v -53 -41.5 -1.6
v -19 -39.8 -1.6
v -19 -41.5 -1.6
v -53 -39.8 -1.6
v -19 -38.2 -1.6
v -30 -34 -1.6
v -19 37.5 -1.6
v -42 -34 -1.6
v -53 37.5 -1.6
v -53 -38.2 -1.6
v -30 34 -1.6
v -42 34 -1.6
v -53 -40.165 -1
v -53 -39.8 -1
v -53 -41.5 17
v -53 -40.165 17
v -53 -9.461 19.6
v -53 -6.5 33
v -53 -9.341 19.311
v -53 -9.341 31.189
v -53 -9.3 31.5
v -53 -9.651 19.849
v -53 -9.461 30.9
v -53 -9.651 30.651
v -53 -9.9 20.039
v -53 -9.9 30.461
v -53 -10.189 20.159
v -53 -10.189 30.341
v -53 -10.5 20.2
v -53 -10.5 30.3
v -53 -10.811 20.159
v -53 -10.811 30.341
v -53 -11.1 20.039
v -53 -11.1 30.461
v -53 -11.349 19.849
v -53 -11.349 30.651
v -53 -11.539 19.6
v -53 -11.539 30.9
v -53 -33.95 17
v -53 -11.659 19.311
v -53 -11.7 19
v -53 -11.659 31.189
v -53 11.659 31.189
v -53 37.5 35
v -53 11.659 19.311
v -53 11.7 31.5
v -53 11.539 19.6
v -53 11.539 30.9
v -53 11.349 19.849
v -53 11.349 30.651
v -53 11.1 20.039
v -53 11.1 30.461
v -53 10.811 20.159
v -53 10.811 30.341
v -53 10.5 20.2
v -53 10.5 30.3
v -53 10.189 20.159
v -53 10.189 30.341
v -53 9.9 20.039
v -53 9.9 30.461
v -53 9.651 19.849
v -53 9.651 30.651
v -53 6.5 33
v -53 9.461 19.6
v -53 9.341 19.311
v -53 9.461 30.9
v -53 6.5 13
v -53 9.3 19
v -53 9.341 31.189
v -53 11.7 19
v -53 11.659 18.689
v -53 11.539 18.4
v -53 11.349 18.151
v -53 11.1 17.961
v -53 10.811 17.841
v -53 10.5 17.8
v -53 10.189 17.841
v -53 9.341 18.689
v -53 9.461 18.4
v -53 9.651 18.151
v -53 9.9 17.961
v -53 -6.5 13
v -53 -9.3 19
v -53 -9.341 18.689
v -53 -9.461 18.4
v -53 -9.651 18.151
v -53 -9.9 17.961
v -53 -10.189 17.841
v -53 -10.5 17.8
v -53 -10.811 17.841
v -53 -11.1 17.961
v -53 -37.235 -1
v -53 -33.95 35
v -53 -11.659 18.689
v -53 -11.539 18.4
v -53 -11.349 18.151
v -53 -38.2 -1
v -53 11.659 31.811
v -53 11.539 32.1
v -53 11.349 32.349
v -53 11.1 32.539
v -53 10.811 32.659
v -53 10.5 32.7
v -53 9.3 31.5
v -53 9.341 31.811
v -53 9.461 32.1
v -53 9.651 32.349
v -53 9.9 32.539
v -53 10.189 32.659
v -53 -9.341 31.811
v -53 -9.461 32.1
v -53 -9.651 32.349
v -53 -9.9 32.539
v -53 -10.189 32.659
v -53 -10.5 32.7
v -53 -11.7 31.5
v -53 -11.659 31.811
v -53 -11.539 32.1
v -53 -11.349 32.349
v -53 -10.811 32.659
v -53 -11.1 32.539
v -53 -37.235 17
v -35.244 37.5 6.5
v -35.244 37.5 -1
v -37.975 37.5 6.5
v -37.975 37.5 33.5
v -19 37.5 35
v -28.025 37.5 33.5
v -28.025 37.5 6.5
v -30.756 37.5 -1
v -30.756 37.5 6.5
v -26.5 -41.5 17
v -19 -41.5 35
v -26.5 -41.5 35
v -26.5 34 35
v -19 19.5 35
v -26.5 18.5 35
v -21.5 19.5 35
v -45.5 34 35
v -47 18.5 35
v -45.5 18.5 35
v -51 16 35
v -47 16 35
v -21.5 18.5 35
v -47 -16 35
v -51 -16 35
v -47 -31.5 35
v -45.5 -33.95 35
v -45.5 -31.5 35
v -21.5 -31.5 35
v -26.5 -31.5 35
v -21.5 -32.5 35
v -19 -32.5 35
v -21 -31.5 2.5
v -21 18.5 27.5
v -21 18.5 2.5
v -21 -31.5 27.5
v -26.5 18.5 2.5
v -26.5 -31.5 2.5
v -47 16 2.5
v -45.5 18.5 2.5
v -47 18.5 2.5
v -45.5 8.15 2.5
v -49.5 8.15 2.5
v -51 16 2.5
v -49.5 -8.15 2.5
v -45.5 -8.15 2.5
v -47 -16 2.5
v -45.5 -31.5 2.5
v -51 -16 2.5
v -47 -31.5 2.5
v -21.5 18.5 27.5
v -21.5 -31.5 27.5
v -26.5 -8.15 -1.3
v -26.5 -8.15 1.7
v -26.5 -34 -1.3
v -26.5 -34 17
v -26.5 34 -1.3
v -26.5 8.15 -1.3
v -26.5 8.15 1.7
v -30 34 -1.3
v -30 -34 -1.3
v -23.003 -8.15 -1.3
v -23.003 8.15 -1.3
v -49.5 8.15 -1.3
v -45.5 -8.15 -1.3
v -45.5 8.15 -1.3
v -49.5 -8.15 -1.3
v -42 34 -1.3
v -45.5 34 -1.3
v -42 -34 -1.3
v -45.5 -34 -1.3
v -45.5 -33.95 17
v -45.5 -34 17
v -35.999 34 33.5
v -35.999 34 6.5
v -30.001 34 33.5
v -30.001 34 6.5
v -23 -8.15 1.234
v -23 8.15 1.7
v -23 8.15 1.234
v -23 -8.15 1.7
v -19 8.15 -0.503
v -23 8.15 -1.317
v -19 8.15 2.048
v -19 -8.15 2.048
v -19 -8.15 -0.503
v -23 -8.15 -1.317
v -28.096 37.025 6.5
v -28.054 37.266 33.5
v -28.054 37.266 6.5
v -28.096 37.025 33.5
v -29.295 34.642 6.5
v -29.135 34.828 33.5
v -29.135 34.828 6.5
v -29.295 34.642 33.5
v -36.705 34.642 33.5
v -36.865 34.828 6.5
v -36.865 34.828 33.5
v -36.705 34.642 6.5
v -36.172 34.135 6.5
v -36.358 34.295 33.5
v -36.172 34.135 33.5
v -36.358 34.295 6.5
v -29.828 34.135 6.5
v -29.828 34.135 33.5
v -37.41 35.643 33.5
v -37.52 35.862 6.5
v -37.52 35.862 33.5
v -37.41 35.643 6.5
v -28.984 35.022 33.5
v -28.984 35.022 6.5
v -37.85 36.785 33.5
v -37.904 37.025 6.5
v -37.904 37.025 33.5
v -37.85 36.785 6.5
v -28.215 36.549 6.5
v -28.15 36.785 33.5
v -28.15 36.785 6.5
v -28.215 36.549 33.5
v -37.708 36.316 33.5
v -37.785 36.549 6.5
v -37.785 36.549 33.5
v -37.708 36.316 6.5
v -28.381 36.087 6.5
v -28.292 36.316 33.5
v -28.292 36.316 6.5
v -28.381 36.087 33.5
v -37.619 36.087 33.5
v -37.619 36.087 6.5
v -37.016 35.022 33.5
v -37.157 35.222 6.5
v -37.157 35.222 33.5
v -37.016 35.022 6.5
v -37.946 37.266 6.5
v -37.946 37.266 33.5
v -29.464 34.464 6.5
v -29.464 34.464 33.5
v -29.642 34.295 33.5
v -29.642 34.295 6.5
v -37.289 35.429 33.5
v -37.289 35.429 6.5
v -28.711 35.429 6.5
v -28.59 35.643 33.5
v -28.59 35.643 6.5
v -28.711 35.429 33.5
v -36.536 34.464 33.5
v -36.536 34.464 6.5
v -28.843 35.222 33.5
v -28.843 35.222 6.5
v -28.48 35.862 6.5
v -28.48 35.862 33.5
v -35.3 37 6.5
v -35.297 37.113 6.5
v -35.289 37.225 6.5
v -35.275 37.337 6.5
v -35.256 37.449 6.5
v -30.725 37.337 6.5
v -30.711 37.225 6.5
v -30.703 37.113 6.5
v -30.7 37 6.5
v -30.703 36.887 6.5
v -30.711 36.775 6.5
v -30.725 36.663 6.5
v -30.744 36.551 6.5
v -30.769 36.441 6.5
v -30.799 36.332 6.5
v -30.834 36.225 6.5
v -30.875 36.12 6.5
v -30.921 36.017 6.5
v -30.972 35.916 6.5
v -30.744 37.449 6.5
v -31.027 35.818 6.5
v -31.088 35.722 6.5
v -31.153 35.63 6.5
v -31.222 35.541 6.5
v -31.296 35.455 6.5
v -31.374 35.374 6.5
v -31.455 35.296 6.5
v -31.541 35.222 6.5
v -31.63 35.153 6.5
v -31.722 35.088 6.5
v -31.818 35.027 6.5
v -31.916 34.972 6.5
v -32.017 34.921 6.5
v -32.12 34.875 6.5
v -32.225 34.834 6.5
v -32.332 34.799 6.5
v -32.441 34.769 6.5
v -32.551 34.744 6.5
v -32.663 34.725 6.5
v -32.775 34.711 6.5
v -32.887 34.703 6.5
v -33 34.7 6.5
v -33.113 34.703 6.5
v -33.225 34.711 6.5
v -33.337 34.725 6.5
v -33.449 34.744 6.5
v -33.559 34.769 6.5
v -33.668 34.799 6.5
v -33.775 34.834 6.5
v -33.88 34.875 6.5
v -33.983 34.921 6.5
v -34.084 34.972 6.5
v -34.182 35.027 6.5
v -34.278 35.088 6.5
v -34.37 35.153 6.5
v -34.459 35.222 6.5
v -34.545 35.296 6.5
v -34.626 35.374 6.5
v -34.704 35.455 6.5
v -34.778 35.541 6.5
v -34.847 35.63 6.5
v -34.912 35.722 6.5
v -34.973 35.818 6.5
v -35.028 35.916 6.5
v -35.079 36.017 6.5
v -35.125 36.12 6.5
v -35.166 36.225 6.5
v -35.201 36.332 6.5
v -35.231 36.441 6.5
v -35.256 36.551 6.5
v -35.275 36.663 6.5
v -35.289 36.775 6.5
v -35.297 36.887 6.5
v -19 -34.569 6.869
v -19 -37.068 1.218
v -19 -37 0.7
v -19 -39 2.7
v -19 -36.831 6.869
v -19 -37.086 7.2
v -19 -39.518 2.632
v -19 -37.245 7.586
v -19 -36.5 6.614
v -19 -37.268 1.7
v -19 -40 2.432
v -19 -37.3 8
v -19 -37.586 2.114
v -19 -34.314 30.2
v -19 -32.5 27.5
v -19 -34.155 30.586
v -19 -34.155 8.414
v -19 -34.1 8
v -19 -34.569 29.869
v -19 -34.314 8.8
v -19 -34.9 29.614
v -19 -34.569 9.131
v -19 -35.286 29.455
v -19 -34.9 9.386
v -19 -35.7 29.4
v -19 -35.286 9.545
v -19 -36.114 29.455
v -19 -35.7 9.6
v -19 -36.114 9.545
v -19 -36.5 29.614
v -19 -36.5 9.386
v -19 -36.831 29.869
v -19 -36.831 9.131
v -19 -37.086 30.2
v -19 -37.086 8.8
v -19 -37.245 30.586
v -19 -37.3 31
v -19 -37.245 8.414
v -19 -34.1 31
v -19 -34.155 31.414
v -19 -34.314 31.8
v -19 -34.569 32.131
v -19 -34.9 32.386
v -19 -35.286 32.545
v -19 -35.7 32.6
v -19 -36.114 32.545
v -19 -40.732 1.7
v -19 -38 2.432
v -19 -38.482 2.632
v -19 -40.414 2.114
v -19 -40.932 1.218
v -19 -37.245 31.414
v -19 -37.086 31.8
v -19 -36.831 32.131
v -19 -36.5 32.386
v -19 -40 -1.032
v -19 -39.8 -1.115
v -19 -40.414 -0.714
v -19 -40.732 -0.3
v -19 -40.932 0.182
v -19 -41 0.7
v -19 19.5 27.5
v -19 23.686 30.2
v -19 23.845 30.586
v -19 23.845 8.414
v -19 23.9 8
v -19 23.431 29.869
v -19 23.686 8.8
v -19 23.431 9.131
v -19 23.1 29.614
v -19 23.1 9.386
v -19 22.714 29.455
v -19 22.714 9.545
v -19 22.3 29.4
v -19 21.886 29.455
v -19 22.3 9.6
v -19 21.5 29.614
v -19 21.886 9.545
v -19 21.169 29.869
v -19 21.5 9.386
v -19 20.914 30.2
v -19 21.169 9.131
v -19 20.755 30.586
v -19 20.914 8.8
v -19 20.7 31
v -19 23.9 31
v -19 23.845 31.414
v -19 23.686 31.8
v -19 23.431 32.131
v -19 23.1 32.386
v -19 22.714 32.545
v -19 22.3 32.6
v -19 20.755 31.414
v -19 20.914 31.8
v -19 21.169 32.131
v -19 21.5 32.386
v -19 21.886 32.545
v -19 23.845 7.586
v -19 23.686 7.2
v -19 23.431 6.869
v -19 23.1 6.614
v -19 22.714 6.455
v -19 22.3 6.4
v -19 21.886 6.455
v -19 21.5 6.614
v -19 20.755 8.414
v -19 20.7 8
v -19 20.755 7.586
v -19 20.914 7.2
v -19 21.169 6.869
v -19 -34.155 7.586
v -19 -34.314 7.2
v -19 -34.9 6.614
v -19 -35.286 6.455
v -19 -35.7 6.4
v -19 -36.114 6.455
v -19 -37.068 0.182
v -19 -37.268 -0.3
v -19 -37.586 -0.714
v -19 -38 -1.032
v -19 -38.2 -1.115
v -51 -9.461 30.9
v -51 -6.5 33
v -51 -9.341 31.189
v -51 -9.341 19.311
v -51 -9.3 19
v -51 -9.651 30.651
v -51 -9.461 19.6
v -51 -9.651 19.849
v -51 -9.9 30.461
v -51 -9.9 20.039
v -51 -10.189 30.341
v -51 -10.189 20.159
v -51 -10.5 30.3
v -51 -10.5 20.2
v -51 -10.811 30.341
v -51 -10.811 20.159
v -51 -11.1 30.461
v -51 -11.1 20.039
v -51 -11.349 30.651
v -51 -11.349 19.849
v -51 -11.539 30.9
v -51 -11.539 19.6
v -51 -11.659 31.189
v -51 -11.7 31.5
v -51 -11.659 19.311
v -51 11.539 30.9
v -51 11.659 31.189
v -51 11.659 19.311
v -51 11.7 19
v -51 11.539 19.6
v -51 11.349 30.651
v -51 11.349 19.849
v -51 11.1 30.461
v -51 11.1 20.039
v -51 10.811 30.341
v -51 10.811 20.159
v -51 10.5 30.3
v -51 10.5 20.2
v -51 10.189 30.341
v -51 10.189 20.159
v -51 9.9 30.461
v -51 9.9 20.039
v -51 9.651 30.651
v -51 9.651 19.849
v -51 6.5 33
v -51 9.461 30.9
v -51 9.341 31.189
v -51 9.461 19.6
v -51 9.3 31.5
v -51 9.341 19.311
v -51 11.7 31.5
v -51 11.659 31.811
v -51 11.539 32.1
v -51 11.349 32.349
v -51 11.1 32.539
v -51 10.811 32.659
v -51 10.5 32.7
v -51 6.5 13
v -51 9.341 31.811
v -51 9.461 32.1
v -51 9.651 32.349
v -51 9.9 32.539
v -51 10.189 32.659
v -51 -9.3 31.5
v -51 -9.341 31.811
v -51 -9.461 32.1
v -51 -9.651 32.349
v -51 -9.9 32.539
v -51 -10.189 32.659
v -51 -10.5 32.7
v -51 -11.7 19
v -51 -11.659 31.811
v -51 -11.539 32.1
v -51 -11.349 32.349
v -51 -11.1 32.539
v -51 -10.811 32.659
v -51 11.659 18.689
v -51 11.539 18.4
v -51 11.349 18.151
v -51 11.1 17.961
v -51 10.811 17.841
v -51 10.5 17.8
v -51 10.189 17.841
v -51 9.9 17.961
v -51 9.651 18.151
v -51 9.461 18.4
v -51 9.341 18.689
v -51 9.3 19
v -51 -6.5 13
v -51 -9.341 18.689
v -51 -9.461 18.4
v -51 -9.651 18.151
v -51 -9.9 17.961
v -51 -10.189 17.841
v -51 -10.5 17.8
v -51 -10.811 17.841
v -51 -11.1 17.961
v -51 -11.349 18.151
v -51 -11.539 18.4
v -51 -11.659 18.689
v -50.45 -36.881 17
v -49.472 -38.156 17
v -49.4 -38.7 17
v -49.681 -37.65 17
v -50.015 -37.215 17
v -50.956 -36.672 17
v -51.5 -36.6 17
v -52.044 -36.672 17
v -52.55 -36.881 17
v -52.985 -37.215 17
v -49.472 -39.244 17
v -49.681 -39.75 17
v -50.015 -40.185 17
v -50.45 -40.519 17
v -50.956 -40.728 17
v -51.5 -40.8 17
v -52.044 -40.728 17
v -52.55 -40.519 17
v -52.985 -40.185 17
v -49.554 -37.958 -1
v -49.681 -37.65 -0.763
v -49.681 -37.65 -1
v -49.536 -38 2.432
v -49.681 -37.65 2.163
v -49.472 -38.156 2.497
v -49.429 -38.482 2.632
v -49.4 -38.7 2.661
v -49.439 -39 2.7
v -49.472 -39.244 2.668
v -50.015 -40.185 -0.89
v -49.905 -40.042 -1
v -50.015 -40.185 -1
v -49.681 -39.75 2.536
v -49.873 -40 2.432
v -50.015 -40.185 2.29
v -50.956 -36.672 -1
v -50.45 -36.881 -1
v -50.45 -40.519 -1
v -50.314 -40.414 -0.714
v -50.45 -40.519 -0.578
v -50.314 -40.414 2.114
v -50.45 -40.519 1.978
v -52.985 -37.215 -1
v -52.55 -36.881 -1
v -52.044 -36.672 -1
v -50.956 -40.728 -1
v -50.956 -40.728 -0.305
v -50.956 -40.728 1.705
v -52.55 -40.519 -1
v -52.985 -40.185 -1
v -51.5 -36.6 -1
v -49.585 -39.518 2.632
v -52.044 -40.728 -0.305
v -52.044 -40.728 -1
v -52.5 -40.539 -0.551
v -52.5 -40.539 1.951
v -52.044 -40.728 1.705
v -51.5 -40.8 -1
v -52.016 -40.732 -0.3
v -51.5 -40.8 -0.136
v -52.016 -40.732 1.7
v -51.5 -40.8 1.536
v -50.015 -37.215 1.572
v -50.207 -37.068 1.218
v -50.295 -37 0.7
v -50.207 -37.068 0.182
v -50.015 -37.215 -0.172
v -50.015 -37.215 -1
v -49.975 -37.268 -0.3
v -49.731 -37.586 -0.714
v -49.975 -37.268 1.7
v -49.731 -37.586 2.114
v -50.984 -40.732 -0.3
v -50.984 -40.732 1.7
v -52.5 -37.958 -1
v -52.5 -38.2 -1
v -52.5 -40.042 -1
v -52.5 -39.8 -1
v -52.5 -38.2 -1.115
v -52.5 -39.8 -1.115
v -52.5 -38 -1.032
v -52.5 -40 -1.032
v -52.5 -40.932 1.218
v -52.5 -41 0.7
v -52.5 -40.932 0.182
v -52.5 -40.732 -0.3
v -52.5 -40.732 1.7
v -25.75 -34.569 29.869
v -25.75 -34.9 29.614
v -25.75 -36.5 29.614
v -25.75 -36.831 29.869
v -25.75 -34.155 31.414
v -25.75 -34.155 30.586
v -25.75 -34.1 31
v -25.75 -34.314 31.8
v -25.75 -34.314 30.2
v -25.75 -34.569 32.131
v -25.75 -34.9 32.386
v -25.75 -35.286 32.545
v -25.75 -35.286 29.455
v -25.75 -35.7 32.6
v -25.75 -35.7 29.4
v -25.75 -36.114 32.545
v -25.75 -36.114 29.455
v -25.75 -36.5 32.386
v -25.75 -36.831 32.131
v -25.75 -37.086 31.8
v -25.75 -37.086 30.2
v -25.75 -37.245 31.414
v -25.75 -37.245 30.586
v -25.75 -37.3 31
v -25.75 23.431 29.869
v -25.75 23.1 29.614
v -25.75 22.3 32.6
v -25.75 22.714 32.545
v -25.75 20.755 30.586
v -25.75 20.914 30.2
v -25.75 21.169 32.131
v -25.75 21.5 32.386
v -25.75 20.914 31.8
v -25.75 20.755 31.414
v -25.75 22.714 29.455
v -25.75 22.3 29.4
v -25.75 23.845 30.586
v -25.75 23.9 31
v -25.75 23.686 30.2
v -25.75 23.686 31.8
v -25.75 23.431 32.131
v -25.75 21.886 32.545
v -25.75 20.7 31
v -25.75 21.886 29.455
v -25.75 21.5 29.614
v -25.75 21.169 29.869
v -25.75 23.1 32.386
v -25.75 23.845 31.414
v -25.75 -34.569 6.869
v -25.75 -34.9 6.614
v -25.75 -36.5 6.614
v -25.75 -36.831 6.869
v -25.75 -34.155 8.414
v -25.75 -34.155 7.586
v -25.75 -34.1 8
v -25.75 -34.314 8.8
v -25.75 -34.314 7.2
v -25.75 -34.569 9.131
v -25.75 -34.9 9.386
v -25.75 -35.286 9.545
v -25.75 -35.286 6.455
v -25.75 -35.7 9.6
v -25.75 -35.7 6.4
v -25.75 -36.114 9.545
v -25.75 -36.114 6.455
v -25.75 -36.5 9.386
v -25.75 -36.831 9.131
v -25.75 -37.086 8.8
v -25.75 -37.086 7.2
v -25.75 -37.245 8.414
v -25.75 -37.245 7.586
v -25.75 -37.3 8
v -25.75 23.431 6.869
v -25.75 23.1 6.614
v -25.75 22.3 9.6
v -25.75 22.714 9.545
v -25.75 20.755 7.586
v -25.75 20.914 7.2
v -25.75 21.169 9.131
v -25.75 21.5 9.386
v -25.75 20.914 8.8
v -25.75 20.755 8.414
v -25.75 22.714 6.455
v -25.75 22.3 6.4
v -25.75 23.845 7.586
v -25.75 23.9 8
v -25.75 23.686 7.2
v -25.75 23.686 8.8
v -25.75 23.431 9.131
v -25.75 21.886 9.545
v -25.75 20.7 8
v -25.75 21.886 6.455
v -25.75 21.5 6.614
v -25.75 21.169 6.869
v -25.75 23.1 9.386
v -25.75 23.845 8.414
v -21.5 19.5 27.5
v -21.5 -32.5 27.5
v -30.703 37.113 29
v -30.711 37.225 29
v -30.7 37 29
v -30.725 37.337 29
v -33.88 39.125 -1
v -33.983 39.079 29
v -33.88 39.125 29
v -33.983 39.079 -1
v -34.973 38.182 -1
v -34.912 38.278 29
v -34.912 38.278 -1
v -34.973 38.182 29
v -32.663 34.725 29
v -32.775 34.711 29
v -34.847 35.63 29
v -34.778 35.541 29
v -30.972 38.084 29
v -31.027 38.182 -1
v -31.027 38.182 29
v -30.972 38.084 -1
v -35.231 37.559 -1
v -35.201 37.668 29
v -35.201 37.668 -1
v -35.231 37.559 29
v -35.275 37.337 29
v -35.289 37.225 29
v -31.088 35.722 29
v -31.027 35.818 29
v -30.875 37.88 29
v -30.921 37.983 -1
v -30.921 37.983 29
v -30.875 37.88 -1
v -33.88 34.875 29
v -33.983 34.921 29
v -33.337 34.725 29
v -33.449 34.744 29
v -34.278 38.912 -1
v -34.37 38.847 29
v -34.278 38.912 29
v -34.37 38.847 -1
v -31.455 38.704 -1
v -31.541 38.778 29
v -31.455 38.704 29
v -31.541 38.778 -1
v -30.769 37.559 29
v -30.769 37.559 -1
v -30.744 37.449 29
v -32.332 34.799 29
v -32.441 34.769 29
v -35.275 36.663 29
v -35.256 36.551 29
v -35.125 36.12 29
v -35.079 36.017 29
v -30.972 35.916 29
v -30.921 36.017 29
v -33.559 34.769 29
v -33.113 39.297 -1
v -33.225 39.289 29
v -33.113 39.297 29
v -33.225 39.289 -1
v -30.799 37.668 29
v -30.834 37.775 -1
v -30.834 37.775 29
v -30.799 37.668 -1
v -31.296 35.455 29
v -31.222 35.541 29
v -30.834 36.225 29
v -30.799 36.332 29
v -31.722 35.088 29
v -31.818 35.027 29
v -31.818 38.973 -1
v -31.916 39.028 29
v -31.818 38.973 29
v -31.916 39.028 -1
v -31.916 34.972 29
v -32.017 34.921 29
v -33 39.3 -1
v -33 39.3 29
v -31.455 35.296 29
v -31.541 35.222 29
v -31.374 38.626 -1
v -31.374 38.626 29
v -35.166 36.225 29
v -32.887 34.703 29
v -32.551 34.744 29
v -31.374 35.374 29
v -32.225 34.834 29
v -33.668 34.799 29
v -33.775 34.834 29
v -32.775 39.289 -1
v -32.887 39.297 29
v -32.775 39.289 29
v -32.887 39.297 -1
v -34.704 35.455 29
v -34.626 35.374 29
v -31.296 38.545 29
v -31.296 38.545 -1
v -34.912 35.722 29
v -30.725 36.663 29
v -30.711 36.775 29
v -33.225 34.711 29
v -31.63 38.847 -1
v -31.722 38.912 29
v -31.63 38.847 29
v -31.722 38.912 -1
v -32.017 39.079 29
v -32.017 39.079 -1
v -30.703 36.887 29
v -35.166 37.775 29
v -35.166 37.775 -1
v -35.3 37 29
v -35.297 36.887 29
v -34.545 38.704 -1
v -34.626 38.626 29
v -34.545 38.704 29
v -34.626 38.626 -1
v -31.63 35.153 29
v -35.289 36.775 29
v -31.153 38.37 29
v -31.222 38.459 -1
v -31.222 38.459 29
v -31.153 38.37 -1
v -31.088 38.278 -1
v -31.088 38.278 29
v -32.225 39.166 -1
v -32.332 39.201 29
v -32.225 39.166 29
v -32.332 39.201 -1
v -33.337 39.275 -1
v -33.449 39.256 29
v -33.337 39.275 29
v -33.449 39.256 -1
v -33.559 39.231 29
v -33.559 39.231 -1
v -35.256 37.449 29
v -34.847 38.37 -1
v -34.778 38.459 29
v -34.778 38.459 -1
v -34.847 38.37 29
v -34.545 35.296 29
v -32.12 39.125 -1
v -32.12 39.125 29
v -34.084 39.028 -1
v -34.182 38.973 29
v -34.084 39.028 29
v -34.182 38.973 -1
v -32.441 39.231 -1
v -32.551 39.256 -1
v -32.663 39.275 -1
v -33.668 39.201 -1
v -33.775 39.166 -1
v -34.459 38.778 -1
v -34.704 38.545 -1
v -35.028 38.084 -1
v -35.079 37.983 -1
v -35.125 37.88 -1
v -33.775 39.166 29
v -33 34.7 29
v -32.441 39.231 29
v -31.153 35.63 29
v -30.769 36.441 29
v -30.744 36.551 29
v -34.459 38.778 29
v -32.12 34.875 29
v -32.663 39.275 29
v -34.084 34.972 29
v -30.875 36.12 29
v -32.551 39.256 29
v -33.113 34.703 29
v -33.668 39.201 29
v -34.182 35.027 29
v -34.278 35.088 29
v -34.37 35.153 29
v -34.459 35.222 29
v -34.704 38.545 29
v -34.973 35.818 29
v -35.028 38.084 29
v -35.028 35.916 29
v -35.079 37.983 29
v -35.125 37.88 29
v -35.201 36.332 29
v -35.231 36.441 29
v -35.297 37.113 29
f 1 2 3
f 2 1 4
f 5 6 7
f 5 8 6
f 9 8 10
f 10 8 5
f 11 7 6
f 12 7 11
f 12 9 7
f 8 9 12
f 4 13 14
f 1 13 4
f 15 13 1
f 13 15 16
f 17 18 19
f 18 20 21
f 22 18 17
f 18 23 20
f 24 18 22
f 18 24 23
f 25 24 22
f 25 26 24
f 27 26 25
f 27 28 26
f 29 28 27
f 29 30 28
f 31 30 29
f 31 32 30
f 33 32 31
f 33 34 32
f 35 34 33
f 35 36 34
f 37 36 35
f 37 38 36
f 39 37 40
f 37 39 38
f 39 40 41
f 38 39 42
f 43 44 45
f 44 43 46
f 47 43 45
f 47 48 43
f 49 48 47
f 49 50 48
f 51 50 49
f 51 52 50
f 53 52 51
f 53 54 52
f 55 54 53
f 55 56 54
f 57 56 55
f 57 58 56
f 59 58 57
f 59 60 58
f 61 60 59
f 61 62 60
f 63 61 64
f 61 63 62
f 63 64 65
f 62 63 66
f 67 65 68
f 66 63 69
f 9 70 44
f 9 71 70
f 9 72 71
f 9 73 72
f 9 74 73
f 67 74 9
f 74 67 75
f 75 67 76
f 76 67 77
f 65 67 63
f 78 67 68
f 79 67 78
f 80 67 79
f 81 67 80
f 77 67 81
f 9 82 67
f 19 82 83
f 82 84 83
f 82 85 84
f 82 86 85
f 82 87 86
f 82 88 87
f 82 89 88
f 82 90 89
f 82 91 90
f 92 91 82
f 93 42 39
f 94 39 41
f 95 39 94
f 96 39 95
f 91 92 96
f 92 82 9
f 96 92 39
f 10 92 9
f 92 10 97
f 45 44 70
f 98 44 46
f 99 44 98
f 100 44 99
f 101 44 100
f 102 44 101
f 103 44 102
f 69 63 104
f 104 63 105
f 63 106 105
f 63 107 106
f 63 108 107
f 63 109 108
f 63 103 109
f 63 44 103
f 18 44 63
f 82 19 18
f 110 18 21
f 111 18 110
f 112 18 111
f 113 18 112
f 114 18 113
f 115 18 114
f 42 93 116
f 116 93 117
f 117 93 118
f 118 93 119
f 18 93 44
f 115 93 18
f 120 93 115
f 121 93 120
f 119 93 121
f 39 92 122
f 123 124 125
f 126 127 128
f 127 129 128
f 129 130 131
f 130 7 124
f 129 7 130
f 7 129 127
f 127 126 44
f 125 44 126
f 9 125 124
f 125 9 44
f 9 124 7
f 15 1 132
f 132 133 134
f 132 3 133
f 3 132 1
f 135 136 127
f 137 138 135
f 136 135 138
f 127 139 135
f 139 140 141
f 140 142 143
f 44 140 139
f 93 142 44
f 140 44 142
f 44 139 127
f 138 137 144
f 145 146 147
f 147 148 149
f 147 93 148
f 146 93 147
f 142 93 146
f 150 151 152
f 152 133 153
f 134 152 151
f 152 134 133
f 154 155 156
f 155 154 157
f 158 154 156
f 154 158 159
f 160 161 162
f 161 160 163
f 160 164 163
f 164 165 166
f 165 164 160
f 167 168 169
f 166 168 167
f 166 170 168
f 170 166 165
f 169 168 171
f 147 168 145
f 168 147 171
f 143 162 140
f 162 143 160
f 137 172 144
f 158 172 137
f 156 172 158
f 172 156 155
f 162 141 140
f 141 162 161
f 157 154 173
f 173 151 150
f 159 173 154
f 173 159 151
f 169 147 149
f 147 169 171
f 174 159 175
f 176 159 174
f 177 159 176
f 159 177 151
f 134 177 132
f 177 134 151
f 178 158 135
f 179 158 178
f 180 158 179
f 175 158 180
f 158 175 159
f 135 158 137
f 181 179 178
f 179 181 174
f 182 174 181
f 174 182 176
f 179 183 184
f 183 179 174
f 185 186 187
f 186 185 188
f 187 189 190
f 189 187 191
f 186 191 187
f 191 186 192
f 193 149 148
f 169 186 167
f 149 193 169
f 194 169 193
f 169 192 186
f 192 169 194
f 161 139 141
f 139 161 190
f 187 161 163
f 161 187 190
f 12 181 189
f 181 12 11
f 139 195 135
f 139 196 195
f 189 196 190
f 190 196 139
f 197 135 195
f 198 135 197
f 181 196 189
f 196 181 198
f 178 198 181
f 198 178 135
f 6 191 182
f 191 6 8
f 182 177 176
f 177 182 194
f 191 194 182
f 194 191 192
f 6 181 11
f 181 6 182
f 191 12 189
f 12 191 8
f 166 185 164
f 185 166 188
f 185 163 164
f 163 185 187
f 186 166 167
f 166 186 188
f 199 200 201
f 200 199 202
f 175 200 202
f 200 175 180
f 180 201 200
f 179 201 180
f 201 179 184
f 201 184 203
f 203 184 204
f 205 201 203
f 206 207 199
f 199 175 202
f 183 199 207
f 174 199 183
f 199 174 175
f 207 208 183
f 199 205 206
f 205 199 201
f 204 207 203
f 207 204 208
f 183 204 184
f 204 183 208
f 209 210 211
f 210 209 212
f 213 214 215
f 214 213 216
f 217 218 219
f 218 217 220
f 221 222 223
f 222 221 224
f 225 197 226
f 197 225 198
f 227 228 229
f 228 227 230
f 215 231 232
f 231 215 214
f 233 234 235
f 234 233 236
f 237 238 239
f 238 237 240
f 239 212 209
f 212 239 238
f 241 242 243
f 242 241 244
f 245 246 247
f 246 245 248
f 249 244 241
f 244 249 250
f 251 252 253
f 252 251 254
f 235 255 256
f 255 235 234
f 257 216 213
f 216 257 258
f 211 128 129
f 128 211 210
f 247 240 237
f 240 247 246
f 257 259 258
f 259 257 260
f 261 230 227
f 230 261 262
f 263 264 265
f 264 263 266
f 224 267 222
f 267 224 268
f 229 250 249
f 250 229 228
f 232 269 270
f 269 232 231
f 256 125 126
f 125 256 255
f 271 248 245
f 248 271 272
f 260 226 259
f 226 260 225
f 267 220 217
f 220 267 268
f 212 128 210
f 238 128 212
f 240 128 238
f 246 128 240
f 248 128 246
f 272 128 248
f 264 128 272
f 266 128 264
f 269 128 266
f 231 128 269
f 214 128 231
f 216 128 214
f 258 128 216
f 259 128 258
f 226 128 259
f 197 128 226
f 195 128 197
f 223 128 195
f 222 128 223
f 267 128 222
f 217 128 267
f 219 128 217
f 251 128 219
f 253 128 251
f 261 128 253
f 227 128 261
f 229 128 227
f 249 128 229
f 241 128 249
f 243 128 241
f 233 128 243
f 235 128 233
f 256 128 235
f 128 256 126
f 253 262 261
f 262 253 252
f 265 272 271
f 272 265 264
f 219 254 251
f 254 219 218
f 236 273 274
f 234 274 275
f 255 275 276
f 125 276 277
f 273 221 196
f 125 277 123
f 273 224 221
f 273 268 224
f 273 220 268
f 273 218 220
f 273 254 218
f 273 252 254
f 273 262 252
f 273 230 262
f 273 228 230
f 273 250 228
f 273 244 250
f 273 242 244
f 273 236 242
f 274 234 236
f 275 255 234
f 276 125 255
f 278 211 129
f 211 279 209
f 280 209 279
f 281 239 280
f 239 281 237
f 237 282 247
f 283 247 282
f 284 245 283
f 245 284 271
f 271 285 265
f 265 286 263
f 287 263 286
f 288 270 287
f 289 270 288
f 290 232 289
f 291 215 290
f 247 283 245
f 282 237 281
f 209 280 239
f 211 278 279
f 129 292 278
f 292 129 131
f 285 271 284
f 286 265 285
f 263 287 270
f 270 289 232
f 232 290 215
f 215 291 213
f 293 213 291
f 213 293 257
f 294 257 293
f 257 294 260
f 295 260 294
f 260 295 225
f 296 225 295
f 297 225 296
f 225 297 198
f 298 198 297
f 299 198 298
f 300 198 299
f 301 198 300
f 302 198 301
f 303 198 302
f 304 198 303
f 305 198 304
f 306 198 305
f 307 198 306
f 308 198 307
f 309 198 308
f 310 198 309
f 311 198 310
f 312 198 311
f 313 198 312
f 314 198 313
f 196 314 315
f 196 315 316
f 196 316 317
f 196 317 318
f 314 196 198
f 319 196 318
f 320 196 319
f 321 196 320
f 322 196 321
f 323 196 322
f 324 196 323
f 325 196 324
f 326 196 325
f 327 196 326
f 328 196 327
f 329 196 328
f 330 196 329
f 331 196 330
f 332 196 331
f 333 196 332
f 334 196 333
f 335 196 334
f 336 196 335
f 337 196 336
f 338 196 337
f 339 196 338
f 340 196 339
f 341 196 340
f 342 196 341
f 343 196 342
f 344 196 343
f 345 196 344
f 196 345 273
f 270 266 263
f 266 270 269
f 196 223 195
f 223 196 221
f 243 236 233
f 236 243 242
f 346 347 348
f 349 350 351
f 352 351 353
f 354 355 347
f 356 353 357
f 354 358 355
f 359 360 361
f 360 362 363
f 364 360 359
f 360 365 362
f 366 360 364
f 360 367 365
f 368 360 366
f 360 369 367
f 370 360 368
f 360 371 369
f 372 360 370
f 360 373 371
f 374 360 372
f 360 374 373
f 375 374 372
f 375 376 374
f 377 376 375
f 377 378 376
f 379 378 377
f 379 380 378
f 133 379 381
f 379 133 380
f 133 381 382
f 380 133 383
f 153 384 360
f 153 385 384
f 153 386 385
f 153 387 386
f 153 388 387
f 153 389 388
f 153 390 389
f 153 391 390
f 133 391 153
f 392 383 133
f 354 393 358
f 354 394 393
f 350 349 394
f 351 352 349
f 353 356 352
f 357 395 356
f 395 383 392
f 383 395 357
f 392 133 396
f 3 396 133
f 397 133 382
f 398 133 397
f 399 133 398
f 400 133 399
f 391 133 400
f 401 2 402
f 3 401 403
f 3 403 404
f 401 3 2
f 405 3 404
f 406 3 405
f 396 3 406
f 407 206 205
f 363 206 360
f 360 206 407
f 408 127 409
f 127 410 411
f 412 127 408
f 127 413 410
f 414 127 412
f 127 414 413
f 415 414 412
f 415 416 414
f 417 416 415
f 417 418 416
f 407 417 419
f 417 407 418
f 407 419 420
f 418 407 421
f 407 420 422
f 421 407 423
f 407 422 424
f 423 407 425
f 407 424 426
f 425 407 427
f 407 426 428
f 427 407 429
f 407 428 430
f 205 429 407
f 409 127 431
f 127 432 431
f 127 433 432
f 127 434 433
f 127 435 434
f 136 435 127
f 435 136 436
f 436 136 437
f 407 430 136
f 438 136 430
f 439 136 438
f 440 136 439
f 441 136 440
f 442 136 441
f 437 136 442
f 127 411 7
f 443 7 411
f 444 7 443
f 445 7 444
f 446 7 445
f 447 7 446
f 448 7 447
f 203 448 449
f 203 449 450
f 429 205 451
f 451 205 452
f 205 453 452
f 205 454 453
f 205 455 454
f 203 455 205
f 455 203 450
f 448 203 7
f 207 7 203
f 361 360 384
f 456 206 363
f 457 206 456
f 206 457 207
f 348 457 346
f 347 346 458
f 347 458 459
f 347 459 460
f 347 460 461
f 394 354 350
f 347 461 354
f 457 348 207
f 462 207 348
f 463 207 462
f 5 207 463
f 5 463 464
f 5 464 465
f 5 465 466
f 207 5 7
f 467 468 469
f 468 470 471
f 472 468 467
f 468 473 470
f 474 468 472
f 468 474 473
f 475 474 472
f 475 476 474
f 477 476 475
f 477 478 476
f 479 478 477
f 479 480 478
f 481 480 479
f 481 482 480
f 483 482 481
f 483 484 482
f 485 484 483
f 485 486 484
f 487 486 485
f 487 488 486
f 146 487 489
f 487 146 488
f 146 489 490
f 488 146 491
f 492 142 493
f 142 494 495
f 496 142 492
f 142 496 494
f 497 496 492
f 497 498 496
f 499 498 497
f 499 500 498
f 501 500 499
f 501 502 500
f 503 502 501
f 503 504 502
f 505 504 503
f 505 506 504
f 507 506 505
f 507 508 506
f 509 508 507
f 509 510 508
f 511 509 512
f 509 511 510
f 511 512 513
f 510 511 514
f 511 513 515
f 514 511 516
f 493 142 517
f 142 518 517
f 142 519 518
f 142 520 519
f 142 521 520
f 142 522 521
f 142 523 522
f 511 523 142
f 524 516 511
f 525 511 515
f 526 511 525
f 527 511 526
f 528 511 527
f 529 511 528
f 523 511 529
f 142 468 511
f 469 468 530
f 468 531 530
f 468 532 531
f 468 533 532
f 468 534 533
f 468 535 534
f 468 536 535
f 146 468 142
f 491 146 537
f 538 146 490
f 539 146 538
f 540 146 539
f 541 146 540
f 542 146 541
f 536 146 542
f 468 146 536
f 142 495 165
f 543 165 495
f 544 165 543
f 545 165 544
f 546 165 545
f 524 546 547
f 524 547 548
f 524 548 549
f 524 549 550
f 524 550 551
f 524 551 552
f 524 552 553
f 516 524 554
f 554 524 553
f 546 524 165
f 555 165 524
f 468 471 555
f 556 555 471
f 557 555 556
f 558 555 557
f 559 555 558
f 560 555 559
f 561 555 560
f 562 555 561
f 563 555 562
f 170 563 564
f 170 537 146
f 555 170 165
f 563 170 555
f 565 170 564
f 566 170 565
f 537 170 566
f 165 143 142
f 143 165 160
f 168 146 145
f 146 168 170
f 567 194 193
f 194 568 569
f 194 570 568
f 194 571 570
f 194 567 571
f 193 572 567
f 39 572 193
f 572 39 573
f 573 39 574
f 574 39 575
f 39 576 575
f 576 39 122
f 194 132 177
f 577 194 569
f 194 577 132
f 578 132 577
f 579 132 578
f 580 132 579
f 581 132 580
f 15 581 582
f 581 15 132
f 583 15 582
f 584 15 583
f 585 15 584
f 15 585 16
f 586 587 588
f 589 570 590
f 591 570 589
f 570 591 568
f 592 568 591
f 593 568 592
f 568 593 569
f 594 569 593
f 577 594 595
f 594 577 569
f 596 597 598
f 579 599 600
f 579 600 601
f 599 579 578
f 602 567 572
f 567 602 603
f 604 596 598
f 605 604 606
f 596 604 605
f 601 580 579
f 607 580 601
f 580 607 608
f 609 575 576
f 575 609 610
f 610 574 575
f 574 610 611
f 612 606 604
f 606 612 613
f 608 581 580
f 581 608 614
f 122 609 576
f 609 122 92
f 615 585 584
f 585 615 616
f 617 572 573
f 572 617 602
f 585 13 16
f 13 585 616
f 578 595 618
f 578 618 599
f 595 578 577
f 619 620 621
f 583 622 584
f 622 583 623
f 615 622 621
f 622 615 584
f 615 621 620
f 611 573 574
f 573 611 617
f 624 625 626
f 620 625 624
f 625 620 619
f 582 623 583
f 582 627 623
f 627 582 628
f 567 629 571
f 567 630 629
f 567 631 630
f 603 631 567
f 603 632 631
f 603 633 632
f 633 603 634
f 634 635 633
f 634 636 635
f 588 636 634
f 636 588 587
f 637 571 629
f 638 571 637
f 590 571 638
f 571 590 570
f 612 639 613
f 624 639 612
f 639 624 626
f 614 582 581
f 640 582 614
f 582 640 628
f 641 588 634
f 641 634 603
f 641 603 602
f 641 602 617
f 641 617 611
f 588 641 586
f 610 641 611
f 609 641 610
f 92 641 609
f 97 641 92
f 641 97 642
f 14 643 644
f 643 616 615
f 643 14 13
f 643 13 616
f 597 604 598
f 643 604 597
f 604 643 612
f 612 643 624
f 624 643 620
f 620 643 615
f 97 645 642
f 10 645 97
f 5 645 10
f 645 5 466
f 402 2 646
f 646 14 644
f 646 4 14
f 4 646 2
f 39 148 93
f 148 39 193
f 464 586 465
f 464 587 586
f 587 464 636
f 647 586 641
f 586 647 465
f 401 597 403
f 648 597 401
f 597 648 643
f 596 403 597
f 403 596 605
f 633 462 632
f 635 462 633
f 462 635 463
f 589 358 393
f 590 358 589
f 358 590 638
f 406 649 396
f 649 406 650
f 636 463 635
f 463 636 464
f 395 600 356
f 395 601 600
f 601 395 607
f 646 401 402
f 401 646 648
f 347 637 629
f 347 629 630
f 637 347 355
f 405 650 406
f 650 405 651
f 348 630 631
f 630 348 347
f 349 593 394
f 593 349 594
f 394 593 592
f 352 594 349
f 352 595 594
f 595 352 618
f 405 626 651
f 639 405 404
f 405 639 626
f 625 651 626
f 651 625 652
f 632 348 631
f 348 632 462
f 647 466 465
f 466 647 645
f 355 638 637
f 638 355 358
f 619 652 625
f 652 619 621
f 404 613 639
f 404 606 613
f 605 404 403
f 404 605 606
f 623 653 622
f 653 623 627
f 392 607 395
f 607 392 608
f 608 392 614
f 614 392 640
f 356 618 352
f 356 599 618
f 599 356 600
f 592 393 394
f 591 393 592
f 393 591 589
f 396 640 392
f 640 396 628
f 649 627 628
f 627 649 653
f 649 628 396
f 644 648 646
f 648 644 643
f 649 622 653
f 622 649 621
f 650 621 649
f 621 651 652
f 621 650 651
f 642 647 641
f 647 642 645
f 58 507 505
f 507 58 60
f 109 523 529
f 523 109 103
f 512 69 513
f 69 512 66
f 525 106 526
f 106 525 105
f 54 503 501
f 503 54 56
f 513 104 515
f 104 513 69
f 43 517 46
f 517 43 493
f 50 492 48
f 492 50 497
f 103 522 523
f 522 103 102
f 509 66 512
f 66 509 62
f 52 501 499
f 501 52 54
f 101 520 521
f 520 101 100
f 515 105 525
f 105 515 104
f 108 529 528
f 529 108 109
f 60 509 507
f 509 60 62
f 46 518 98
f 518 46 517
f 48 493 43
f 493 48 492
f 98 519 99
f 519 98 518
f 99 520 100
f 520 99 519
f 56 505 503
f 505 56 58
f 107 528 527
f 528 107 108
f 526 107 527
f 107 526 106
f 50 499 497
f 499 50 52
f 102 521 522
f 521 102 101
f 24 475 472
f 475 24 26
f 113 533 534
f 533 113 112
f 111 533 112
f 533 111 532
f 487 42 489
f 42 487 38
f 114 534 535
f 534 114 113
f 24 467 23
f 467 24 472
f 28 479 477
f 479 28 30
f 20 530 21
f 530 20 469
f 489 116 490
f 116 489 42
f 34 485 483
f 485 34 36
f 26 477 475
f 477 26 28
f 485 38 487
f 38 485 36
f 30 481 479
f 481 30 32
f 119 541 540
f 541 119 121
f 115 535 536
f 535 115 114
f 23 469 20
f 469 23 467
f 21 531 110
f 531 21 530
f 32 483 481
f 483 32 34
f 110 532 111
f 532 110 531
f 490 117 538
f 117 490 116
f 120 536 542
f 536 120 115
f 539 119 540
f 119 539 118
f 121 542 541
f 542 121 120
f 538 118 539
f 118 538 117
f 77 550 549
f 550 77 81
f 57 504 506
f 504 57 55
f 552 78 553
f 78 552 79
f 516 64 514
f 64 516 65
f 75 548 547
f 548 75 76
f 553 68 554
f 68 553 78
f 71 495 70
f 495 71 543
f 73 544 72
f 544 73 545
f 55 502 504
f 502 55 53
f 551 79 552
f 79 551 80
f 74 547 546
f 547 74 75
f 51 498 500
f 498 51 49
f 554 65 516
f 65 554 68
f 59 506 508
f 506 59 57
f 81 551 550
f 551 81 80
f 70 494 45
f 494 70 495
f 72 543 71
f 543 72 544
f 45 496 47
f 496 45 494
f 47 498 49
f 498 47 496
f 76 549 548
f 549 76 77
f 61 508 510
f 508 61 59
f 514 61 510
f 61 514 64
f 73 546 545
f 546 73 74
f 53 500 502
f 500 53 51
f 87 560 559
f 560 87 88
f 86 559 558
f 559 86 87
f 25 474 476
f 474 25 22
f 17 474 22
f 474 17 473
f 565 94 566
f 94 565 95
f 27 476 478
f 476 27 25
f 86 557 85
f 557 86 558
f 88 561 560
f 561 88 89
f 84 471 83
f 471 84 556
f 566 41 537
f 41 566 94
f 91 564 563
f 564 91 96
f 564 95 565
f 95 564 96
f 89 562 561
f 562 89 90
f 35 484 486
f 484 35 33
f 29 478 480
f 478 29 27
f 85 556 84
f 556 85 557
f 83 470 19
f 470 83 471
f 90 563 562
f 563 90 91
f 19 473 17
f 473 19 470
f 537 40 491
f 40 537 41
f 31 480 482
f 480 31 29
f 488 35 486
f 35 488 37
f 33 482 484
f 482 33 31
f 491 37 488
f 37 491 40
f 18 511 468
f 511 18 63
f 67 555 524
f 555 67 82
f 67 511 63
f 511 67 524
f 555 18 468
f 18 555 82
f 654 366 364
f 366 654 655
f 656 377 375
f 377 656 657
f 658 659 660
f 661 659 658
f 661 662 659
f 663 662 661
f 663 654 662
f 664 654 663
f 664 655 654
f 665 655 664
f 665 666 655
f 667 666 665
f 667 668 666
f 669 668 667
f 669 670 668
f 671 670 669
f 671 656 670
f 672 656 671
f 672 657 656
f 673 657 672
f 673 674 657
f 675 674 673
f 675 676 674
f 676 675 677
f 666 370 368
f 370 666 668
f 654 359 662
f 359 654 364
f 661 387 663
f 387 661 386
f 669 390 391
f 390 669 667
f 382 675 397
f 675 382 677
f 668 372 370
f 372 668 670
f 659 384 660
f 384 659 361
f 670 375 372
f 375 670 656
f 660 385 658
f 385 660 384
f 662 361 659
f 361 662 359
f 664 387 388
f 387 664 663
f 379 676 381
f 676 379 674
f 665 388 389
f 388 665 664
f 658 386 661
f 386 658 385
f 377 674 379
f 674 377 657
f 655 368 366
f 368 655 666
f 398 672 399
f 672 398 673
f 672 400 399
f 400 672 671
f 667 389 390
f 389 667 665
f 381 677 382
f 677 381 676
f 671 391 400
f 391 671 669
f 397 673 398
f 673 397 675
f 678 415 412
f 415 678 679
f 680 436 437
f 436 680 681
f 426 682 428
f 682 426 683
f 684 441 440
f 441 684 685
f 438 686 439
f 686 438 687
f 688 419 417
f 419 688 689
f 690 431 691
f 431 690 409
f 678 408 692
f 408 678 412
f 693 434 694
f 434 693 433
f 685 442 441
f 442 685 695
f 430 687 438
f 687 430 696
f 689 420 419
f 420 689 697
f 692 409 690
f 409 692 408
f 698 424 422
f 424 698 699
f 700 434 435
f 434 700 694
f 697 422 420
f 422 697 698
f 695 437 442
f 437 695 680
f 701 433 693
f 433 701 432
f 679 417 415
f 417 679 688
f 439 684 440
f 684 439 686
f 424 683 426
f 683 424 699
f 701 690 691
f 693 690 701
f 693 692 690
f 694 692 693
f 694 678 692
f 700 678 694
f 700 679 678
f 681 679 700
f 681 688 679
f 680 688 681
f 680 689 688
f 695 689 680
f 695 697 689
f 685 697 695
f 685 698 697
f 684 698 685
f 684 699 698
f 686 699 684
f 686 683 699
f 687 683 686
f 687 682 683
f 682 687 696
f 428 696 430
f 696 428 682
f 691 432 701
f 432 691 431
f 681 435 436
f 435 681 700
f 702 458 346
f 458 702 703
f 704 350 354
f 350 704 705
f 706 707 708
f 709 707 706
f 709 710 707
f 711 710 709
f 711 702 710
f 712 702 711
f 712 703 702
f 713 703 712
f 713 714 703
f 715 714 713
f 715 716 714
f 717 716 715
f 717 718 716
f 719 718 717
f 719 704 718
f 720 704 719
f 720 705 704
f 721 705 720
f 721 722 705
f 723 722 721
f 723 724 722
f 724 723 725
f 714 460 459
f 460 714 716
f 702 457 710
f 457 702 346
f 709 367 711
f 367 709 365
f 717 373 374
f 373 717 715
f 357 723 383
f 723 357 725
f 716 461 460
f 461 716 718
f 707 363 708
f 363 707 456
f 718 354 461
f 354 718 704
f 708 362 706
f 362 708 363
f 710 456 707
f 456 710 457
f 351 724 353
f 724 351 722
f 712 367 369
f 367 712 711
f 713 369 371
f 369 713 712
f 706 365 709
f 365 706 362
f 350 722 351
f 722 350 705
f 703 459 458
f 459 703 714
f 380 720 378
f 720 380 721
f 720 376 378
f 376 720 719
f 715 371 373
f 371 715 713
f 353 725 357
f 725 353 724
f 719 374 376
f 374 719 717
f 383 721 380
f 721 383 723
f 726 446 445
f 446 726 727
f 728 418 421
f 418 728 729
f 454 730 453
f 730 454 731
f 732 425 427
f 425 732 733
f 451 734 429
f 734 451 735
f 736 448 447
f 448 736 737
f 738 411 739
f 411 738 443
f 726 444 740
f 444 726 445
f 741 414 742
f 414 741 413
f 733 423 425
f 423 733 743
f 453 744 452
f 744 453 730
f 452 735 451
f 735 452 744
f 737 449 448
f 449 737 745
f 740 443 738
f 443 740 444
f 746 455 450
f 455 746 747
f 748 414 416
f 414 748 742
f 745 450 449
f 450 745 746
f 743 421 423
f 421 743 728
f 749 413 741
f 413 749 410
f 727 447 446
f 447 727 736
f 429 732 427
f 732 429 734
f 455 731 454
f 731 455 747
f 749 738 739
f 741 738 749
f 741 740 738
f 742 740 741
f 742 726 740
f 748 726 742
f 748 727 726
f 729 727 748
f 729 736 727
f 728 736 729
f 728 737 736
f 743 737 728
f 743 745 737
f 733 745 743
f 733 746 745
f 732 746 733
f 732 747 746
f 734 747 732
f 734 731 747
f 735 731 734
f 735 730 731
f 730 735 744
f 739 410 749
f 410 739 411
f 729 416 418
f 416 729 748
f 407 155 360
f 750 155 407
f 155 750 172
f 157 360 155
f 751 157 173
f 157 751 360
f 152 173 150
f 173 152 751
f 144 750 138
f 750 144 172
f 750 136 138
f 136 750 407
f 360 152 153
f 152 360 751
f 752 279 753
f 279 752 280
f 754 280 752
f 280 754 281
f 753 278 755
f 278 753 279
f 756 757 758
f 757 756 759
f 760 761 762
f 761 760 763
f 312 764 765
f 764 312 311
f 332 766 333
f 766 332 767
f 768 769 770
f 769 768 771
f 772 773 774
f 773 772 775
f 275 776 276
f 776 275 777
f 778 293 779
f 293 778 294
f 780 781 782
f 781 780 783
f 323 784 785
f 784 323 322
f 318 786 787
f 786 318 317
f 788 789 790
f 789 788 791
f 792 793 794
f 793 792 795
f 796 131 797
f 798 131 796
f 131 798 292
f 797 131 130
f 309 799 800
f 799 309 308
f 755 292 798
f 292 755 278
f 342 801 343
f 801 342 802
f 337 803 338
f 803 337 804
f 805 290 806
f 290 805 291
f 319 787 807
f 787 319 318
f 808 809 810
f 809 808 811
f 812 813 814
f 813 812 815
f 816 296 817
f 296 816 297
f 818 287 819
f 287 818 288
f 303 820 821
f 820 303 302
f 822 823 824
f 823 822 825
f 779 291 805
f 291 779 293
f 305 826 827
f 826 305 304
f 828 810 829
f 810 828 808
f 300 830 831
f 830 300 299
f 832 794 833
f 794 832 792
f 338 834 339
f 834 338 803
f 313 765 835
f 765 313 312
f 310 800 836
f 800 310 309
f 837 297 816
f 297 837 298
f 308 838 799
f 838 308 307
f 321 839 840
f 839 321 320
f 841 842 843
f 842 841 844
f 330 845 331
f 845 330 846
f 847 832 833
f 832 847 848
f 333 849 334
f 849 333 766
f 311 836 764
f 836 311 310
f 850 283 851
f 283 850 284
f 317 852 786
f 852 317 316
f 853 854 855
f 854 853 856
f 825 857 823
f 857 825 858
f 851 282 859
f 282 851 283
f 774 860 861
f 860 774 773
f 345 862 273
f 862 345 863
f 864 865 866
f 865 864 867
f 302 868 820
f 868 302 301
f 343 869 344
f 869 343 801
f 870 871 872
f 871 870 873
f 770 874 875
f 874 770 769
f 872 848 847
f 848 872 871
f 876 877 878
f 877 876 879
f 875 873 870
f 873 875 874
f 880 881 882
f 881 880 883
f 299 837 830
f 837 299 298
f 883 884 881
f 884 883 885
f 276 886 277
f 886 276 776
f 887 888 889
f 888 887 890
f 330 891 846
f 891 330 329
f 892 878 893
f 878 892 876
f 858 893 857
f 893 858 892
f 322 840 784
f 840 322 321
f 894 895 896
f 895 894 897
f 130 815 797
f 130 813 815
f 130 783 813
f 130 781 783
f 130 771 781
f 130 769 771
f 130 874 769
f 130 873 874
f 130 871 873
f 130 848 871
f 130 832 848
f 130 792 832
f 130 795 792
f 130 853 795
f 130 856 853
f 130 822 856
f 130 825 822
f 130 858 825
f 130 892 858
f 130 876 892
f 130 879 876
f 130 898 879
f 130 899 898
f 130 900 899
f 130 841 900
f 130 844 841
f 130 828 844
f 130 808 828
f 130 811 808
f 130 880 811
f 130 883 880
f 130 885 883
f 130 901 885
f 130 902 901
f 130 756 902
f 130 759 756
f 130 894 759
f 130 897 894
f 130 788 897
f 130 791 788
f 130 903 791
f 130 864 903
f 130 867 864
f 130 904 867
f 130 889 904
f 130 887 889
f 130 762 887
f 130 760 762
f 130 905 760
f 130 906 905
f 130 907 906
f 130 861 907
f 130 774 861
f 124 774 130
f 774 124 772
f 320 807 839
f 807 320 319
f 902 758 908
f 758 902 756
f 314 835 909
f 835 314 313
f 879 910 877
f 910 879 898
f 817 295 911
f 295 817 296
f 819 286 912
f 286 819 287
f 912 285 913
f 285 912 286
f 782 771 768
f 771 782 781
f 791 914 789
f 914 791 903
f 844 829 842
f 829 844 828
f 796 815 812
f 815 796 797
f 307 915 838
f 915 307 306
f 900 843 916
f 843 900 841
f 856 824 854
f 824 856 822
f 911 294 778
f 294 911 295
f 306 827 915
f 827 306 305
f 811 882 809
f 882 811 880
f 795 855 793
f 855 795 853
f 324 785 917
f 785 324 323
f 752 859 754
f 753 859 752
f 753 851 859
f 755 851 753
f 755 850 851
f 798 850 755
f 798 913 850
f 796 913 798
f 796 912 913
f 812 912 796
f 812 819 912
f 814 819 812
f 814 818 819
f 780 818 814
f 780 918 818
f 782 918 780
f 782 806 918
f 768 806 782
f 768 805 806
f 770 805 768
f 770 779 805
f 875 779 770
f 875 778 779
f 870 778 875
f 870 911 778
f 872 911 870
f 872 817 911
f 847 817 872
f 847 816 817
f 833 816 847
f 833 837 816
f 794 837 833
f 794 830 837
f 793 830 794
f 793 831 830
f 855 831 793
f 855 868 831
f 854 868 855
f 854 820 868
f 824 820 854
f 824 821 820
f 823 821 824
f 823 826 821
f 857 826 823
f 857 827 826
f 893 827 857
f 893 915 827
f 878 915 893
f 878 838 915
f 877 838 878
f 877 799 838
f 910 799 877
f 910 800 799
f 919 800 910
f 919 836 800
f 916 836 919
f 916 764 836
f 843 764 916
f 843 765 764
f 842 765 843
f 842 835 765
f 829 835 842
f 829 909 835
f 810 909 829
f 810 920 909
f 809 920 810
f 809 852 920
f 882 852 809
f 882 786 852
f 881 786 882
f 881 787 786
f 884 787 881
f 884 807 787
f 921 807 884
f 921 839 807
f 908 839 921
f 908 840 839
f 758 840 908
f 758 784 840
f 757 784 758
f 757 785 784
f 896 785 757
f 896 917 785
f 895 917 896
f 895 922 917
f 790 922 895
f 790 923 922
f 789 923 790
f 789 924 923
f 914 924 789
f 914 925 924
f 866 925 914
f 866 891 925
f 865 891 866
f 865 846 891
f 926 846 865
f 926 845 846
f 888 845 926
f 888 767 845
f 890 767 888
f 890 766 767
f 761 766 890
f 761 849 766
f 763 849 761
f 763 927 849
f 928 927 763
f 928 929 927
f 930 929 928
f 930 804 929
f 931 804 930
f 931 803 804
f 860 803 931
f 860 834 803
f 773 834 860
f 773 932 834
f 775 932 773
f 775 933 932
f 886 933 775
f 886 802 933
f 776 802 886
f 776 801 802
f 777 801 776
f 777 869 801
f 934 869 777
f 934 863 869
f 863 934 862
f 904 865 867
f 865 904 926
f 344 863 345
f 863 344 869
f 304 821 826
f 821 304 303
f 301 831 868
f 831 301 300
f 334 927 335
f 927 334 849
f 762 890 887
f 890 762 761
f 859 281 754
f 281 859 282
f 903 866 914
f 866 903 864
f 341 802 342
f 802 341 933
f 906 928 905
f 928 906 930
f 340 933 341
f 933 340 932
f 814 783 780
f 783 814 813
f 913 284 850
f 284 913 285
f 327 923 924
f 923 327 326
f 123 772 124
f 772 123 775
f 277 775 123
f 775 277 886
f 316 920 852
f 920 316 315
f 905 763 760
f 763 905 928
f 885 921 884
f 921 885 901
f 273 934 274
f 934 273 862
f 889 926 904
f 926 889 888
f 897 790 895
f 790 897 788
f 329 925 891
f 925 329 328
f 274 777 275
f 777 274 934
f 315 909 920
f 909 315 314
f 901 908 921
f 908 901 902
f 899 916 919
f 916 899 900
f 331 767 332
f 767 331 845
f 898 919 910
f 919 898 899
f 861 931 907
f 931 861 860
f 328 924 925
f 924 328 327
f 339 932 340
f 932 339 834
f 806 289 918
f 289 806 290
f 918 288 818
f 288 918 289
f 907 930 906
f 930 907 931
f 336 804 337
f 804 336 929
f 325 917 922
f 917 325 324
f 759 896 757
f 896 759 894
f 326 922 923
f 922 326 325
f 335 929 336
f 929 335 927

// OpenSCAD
union () {
difference(){
union(){
translate([-4,-2,1.9])cube([98,79,7], center=true);    
translate([-13,-2,19.5])cube([80,79,31], center=true); 
translate([-23.5,-6.5,19.5])cube([8,69,31], center=true);
}
    //Cube LiPo Battery Core Electronics style
    translate([-34,-6.5,20])cube([26,50,35], center=true);

    //Dual cylinder lipo Adafruit style
    translate([-36,0,17.2])cube([19,68,37], center=true);
    translate([-36,0,16])cube([12,68,37], center=true);
     
    //Outside rail mounts
    translate([0,50.8,-3.7])  rotate([0,90,0])   cylinder(h=115, r1=9, r2=9, center=true,$fn=128);
    translate([0,-50.8,-3.7])  rotate([0,90,0])   cylinder(h=115, r1=9, r2=9, center=true,$fn=128);

    //Hole clearance
    //translate([0,29.5,-17])  rotate([0,90,0])   cylinder(h=115, r1=17, r2=17, center=true,$fn=128);
    //translate([0,-29.5,-17])  rotate([0,90,0])   cylinder(h=115, r1=17, r2=17, center=true,$fn=128);
    
    //Cavity for camera cable
    translate([-38,0,1])cube([23,16.3,4.6], center=true);
    translate([-33,0,0.2])cube([20,16.3,3], center=true);
    translate([-11,0,2.4]) rotate([0,-11.5,0]) cube([25,16.3,2.5], center=true);

    //Camera cable routing
    translate([-33,38,20])  rotate([0,0,0])   cylinder(27, r1=5, r2=5, center=true,$fn=128);

    //Holes for battery terminals and solar plug
    translate([30,-30,16])cube([98,40.5,40], center=true);
    translate([30,30,16])cube([98,40.5,40], center=true);
    
    //Camera installation
    translate([-41,0,20])cube([20,32,35], center=true);
    
     //battery cable routing
    translate([-34,-37,27])  cube([15,10,20], center=true);
    translate([-51.5,-38.7,9]) rotate([0,0,0])  cylinder(h=20, r1=2.1, r2=2.1, center=true,$fn=24);
    
    translate([-36,-39,0])  cube([35,1.6,4], center=true);


    //translate([-46.5,-37.5,20.7])rotate([0,90,0])   cylinder(h=12.05, r1=3.75, r2=3.75, center=true,$fn=24);
    translate([-46,-39.5,29])  cube([20,11.1,24], center=true);
   
    translate([-35,-39,0.7])rotate([0,90,0])   cylinder(h=35, r1=2, r2=2, center=true,$fn=24);

    
    ///camera holes
    translate([-51,10.5,31.5])rotate([0,90,0])   cylinder(h=5, r1=1.2, r2=1.2, center=true,$fn=24);
    translate([-51,-10.5,31.5])rotate([0,90,0])   cylinder(h=5, r1=1.2, r2=1.2, center=true,$fn=24);
    translate([-51,10.5,19])rotate([0,90,0])   cylinder(h=5, r1=1.2, r2=1.2, center=true,$fn=24);
    translate([-51,-10.5,19])rotate([0,90,0])   cylinder(h=5, r1=1.2, r2=1.2, center=true,$fn=24);

    //camera cutout
    translate([-52,0,23])cube([8,13,20], center=true);
    
     //Pi Zero holes  
    translate([-17,-35.7,31])rotate([0,90,0])   cylinder(h=17.5, r1=1.6, r2=1.6, center=true,$fn=24);
    translate([-17,22.3,31])rotate([0,90,0])   cylinder(h=17.5, r1=1.6, r2=1.6, center=true,$fn=24);
    translate([-17,-35.7,8])rotate([0,90,0])   cylinder(h=17.5, r1=1.6, r2=1.6, center=true,$fn=24);
    translate([-17,22.3,8])rotate([0,90,0])   cylinder(h=17.5, r1=1.6, r2=1.6, center=true,$fn=24);
    
    
    //Pi 4 cutout 85.6mm × 56.5mm
    //translate([52,0.8,25])cube([58,87,30], center=true);
    //Pi Zero cut out 65mm x 30mm
    //translate([6,-9,22])cube([42,120,33], center=true);
    
    //Pi PCB cutout
    translate([16,-6.5,20])cube([70,70.5,46], center=true);
    translate([7,-6.5,35])cube([57,52,15], center=true);

    //Ventilation
    
    //#translate([-44,0,20])rotate([90,0,0])   cylinder(h=60, r1=2, r2=2, center=true,$fn=24);
    //translate([-30,0,20])rotate([90,0,0])   cylinder(h=88, r1=2, r2=2, center=true,$fn=24);    
    //translate([-44,-6.5,10])rotate([90,0,0])   cylinder(h=88, r1=2, r2=2, center=true,$fn=24);
    //translate([-30,0,10])rotate([90,0,0])   cylinder(h=88, r1=2, r2=2, center=true,$fn=24);    
    //#translate([-44,0,30])rotate([90,0,0])   cylinder(h=60, r1=2, r2=2, center=true,$fn=24);
    //translate([-30,0,30])rotate([90,0,0])   cylinder(h=88, r1=2, r2=2, center=true,$fn=24);    

}
//Camera cable routing
translate([-33,37,14])  rotate([0,0,0])   cylinder(30, r1=2.3, r2=2.3, center=true,$fn=128);
        }
